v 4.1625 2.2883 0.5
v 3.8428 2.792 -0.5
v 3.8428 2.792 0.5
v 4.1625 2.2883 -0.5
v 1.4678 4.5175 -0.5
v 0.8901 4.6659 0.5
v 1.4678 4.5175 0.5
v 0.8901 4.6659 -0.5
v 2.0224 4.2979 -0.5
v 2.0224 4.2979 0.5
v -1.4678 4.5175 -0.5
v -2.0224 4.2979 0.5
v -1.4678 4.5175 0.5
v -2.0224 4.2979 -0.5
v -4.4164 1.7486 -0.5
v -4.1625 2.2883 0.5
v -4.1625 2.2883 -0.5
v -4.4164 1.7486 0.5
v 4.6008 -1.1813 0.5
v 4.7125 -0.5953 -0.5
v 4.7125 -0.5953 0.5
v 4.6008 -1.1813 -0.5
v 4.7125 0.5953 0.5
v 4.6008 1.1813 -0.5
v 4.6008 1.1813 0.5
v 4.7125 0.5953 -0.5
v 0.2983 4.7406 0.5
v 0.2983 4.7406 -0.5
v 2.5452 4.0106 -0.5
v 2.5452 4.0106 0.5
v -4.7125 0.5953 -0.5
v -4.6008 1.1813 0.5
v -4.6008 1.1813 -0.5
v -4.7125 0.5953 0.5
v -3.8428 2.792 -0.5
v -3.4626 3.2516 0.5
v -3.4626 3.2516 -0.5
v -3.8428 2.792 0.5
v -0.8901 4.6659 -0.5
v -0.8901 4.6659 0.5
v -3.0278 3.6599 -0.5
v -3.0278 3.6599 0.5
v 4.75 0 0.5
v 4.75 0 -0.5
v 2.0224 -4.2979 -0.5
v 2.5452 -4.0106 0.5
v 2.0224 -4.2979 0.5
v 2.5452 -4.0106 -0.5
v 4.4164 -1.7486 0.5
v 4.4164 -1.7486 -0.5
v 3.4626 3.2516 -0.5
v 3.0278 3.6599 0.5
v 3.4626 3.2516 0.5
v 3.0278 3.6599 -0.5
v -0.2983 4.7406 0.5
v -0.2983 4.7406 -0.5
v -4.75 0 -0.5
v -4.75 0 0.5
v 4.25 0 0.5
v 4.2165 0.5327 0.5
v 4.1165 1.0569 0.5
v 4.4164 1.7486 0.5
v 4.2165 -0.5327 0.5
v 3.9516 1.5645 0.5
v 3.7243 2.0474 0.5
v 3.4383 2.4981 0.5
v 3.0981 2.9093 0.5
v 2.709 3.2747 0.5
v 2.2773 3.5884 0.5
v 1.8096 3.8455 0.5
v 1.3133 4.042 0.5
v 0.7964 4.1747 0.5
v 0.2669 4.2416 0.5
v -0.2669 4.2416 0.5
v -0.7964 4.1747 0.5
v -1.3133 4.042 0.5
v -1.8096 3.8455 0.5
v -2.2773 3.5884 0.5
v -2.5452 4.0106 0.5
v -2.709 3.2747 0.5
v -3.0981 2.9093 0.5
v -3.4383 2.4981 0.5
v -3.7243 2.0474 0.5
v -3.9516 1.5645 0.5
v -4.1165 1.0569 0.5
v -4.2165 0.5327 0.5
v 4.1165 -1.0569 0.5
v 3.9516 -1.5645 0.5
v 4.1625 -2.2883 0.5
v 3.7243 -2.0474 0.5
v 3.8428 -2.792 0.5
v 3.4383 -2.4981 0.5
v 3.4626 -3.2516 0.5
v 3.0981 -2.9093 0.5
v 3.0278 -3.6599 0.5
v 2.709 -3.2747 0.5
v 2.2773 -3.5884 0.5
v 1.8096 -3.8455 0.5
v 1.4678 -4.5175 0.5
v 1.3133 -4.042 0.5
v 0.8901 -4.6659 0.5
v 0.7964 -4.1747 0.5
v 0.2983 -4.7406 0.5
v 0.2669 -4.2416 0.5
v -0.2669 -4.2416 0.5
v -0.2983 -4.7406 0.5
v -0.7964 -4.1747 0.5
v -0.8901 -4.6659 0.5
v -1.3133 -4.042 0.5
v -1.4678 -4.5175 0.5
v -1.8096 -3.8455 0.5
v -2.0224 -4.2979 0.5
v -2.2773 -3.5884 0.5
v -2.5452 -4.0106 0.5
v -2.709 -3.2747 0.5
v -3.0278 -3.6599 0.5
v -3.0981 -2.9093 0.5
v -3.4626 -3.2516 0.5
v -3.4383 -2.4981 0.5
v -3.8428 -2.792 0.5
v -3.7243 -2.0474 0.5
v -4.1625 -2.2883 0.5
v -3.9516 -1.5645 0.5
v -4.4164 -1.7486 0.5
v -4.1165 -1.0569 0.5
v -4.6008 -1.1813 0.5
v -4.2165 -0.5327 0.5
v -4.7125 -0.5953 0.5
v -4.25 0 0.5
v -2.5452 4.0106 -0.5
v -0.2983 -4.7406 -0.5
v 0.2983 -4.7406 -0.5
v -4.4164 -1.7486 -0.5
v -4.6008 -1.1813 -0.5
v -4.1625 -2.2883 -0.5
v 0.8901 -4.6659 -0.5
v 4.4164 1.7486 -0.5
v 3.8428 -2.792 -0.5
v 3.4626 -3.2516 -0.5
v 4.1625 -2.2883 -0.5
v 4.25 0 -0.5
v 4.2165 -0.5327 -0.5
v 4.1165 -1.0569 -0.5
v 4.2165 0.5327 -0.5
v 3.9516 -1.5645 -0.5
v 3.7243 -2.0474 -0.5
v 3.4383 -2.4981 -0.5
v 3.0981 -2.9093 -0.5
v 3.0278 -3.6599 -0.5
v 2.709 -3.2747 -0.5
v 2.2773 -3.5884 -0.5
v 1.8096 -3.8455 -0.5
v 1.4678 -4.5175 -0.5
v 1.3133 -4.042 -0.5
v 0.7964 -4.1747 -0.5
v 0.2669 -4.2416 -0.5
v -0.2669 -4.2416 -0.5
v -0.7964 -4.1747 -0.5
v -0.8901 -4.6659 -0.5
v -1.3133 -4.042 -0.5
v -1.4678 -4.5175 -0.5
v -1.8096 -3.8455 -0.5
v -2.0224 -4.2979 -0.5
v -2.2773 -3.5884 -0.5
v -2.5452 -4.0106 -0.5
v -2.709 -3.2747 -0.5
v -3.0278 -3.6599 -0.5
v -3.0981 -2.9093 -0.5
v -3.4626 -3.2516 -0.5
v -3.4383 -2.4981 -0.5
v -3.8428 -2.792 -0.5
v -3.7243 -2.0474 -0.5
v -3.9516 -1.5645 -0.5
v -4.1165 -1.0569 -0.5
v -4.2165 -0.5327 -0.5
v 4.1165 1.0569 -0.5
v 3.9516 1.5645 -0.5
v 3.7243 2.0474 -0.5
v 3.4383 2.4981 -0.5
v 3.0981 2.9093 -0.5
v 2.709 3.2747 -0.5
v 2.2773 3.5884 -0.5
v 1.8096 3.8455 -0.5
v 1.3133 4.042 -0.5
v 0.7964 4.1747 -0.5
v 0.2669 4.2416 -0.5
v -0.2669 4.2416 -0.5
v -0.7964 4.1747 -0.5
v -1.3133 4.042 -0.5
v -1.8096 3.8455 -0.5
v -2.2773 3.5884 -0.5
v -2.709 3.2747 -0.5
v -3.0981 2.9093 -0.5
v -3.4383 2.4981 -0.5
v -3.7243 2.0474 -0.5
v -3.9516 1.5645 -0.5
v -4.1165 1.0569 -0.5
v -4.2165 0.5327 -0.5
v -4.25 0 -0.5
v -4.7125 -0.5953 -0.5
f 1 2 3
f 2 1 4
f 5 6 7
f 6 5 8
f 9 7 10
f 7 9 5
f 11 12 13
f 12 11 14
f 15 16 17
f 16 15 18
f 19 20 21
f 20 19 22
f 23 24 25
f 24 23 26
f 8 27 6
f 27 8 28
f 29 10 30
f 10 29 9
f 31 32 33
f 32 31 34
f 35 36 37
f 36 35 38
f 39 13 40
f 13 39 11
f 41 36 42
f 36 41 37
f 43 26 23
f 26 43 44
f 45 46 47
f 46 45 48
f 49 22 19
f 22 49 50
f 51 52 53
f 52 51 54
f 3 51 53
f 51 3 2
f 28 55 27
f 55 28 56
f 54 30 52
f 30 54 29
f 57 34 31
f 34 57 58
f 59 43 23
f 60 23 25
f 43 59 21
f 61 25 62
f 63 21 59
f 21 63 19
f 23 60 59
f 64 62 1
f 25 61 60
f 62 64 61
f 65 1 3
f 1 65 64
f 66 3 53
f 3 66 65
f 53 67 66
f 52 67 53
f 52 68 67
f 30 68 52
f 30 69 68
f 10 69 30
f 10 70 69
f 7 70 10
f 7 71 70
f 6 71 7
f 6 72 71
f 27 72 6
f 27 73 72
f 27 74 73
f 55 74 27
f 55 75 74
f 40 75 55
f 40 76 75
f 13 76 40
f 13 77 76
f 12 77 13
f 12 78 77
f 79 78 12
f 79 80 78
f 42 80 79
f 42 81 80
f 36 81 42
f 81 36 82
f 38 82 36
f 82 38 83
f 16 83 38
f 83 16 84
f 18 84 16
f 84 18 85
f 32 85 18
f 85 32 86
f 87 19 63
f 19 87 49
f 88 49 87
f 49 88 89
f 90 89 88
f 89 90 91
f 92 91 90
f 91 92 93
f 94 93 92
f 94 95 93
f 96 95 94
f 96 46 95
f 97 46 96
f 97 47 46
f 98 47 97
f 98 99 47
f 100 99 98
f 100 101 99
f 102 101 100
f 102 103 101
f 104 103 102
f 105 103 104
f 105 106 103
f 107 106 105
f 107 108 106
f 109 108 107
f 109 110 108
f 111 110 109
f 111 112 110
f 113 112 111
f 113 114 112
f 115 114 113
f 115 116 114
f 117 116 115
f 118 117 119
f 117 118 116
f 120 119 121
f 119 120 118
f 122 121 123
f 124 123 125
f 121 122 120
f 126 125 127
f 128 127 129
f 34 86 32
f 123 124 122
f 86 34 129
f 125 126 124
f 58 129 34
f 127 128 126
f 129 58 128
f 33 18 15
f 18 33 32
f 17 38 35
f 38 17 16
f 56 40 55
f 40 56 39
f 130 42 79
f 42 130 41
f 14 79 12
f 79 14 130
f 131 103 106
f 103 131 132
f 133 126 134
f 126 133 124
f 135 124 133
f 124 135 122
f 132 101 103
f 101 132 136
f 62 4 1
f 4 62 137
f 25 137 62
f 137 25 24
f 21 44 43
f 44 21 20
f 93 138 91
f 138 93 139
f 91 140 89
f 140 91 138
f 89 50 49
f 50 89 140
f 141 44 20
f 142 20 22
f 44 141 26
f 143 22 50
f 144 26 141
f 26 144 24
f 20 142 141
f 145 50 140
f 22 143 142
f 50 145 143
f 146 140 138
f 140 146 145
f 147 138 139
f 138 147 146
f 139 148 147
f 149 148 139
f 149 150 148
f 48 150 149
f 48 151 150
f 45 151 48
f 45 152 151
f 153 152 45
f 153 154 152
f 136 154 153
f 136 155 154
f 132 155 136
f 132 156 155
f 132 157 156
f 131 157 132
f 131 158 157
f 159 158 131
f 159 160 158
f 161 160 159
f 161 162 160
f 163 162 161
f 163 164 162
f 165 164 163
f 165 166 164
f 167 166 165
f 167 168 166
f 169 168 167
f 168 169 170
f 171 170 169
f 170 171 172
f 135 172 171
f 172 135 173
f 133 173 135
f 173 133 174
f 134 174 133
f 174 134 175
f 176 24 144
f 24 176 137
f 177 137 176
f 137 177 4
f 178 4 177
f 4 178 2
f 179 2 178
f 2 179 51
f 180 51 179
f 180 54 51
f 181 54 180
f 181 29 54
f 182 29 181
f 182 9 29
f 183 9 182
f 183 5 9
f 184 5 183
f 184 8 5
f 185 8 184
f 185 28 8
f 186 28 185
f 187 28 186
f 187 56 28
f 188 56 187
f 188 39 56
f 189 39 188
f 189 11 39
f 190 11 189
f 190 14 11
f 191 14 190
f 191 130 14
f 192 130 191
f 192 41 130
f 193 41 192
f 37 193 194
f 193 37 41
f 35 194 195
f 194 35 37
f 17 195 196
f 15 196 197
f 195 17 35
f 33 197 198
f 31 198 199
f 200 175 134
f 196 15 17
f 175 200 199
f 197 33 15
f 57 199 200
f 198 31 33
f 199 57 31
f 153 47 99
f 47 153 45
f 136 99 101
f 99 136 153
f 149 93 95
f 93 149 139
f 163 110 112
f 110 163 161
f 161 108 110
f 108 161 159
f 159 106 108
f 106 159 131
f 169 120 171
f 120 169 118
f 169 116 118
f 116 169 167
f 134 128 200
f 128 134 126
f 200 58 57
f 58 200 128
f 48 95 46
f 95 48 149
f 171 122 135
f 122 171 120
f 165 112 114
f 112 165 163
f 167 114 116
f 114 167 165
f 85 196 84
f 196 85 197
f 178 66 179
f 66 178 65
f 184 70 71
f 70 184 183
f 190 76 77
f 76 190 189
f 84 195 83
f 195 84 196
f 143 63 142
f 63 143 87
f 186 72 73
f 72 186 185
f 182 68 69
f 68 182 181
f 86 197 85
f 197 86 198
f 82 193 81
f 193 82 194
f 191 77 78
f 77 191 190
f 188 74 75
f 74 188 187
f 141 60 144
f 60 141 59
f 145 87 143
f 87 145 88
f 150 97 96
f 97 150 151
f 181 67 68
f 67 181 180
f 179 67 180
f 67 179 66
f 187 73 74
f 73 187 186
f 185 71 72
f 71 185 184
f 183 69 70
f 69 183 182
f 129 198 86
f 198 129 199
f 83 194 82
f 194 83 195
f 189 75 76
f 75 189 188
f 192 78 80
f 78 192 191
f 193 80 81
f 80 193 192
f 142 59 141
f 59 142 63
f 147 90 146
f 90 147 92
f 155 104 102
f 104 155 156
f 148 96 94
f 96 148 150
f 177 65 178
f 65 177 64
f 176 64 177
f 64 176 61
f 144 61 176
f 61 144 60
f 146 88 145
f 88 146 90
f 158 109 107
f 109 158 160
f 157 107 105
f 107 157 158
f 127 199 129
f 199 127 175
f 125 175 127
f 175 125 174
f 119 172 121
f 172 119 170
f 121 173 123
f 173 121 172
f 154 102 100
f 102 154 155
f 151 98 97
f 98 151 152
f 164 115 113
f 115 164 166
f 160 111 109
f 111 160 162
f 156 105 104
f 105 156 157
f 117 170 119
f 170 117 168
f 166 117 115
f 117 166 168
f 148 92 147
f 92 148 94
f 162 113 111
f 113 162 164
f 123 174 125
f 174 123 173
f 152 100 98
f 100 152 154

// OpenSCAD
$fn = 50;


difference() {
	union() {
		translate(v = [0, 0, -0.5000000000]) {
			cylinder(h = 1, r = 4.7500000000);
		}
	}
	union() {
		translate(v = [0, 0, -100.0000000000]) {
			cylinder(h = 200, r = 4.2500000000);
		}
	}
}
